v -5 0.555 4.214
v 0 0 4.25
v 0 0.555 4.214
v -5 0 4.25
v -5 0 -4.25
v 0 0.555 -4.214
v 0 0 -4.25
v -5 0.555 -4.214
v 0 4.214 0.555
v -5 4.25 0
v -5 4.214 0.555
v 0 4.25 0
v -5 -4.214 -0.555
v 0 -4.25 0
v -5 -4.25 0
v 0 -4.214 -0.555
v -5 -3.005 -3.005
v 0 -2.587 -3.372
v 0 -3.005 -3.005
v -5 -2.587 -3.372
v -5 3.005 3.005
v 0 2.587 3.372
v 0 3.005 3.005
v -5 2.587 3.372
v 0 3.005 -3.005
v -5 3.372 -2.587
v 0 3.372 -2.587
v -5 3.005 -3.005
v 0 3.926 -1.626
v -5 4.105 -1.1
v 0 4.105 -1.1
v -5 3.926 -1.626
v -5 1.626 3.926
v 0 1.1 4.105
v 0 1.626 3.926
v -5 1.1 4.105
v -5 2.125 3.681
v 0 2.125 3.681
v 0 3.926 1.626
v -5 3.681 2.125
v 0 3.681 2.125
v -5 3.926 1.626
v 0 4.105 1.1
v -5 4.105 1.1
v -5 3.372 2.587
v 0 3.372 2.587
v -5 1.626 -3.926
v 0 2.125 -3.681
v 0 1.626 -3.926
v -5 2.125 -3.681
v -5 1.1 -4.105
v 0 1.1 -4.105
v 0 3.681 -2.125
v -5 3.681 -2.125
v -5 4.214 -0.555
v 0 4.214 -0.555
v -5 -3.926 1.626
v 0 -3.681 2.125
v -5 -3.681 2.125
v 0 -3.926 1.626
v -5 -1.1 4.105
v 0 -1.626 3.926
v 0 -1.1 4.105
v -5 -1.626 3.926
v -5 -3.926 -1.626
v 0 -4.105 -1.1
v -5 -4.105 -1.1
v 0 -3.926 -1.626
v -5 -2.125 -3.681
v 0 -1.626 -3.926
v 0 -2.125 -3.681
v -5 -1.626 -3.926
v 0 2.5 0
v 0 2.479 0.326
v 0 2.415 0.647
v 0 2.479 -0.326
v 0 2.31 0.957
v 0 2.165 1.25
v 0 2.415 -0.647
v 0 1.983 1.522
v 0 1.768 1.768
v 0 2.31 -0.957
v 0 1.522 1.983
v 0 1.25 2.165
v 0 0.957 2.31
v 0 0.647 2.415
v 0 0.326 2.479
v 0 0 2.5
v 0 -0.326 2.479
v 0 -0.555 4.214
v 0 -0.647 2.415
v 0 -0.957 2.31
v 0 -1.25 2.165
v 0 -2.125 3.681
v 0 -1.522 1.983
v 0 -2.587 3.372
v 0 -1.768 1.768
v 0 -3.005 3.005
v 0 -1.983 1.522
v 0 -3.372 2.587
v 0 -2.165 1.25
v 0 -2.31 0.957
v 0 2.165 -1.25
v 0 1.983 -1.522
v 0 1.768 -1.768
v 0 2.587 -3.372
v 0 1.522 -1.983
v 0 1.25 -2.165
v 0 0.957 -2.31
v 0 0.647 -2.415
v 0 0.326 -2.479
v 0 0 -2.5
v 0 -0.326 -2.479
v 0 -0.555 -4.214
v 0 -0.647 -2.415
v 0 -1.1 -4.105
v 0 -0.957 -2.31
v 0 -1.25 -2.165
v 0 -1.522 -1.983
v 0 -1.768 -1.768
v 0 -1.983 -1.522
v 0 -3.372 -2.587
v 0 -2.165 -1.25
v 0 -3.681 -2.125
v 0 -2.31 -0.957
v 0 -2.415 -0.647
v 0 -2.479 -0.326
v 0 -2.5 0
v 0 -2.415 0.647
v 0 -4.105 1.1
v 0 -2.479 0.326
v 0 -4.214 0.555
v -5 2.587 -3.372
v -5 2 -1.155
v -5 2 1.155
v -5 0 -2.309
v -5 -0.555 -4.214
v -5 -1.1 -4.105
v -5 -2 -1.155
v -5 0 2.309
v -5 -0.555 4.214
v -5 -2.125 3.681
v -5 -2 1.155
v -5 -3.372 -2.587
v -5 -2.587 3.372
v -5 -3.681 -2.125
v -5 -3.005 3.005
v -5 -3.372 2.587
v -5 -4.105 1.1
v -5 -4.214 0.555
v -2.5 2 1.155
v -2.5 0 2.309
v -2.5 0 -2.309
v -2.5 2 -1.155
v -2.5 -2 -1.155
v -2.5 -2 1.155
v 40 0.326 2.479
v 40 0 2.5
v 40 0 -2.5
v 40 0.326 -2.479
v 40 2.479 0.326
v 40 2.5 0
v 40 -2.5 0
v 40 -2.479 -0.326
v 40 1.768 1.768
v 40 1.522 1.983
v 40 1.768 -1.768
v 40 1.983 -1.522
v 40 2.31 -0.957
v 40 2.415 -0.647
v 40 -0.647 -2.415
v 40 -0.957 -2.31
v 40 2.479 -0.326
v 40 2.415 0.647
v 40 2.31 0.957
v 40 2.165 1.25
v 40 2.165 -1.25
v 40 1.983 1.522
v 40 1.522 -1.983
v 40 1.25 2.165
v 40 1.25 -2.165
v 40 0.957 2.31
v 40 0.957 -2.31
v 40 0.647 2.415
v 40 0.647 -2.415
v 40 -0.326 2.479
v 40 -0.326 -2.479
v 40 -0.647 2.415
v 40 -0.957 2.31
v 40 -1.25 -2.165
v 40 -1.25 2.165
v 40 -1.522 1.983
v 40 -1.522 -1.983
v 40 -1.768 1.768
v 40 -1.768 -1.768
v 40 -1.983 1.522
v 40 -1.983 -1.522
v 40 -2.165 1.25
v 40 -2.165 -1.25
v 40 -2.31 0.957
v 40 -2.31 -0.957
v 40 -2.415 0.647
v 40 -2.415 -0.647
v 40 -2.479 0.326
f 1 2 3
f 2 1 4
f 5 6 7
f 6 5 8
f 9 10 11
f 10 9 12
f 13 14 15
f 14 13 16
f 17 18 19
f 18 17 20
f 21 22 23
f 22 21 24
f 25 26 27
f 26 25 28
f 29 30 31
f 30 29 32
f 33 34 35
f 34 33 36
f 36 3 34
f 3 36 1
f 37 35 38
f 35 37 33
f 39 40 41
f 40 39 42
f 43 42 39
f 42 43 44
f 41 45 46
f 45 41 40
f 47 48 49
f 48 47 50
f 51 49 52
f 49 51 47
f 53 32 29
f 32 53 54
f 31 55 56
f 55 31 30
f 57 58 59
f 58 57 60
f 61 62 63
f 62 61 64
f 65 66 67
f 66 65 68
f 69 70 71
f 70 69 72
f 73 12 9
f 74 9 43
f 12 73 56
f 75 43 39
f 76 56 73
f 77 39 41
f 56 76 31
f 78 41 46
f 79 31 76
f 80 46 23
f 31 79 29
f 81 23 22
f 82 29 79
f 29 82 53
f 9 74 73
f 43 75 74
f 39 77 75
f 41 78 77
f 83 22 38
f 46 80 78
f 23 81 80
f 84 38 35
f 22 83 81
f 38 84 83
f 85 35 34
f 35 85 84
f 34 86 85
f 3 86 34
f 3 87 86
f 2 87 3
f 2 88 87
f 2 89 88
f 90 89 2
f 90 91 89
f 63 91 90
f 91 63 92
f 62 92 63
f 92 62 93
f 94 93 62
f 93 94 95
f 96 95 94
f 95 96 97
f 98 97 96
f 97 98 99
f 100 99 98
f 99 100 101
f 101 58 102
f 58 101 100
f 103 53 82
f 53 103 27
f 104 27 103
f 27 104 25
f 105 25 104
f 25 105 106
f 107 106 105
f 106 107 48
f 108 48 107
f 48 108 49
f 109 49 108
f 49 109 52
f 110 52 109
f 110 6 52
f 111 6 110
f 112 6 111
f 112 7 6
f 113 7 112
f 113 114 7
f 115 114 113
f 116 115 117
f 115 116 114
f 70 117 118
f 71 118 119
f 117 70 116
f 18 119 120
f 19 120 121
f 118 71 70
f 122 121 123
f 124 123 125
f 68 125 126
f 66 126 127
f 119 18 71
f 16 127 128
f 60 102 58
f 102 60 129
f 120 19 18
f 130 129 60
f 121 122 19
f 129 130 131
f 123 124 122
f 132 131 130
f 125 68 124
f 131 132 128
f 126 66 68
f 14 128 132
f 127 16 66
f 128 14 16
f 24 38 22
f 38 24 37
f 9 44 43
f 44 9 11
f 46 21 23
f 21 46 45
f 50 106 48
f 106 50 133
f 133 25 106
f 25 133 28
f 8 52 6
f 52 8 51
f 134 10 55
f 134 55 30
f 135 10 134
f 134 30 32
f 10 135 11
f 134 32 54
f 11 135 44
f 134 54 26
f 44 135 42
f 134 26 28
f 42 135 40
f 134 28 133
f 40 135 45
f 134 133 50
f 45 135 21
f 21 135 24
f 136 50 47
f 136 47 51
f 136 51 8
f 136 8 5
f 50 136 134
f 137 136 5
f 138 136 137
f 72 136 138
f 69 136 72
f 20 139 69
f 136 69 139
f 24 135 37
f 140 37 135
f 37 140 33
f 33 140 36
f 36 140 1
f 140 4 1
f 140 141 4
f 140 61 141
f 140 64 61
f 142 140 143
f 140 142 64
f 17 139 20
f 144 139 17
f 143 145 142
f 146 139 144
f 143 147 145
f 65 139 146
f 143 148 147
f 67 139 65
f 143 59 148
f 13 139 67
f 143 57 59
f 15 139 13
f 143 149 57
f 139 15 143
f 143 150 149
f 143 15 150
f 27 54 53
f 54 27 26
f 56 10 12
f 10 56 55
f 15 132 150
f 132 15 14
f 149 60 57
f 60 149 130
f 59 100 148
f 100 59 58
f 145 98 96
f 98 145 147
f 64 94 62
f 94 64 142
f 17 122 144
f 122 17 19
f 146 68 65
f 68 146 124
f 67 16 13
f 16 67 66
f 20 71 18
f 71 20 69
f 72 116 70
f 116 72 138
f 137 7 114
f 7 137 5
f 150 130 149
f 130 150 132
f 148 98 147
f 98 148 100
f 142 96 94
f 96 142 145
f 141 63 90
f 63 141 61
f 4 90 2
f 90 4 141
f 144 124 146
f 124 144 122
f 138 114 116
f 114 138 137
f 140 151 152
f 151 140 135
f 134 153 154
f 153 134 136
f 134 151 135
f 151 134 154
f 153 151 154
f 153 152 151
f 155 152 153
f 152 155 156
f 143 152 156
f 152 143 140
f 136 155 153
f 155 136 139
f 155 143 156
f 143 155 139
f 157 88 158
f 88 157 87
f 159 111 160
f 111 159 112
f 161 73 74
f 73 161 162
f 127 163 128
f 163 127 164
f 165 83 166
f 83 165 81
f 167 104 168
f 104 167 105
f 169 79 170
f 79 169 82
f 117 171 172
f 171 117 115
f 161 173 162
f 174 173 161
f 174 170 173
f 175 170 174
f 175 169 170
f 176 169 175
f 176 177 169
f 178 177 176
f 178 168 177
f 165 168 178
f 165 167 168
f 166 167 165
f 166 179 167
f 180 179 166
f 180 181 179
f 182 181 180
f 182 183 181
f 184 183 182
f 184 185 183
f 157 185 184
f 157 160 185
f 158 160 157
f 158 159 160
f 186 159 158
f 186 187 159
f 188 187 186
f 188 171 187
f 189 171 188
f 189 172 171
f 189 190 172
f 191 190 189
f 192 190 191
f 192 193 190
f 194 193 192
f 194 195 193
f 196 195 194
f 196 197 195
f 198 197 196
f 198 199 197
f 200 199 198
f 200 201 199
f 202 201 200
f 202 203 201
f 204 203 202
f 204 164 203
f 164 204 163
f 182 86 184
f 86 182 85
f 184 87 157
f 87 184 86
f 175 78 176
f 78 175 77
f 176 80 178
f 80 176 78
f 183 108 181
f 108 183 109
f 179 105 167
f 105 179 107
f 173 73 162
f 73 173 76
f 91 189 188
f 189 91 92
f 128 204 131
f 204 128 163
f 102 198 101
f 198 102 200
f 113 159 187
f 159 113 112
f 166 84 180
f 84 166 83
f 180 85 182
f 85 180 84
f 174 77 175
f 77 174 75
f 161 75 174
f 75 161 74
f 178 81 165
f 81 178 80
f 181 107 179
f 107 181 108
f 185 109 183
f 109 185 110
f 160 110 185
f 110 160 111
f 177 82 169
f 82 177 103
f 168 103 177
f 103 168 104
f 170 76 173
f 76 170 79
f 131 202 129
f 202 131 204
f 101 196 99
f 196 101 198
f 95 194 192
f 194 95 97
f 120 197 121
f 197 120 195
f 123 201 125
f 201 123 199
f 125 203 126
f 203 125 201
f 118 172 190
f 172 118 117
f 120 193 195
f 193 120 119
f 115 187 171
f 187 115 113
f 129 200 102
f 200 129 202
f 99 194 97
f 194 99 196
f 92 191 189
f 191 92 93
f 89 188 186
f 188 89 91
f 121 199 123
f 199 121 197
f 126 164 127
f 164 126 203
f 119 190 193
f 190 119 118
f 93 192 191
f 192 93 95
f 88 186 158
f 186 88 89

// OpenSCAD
// file: ../../lib/nutsnbolts/data-access.scad
// Norm Nuts and Bolts - a OpenSCAD library
// Copyright (C) 2012  Johannes Kneer

// This program is free software: you can redistribute it and/or modify
// it under the terms of the GNU General Public License as published by
// the Free Software Foundation, either version 3 of the License, or
// (at your option) any later version.

// This program is distributed in the hope that it will be useful,
// but WITHOUT ANY WARRANTY; without even the implied warranty of
// MERCHANTABILITY or FITNESS FOR A PARTICULAR PURPOSE.  See the
// GNU General Public License for more details.

// You should have received a copy of the GNU General Public License
// along with this program.  If not, see <http://www.gnu.org/licenses/>.


// DATABASE ACCESS FUNCTIONS AND CONSTANTS



// == CONSTANTS ==

// screw table access keys
_NB_S_DESC            = 0;
_NB_S_FAMKEY			    = 1;
_NB_S_LENGTH          = 2;
_NB_S_NOTHREAD_LENGTH = 3;

_NB_F_DESC			      = 0;
_NB_F_OUTER_DIA       = 1;
_NB_F_INNER_DIA       = 2;
_NB_F_LEAD            = 3;
_NB_F_KEY             = 4;
_NB_F_KEY_DEPTH       = 5;
_NB_F_HEAD_HEIGHT     = 6;
_NB_F_HEAD_DIA        = 7;
_NB_F_NUT_KEY         = 8;
_NB_F_NUT_HEIGHT      = 9;
_NB_F_PITCH_FINE      = 10;
_NB_F_PITCH_MEDIUM    = 11;
_NB_F_PITCH_COARSE    = 12;


// == FUNCTIONS ==

// _get_screw("descriptor")   with descriptor = M8x25
//   find the line for a general object in the data matrix

function _get_screw(n) = data_screw[search([n], data_screw)[0]];
function _get_screw_fam(n) = data_screw_fam[search([_get_screw(n)[_NB_S_FAMKEY]], data_screw_fam)[0]];

function _get_fam(n) = data_screw_fam[search([n], data_screw_fam)[0]];


// _get_XXXXX("descriptor") functions
// find a single property in the database

function _get_desc(n)        = _get_screw(n)[_NB_S_DESC];
function _get_famkey(n)         = _get_screw(n)[_NB_S_FAMKEY];
function _get_length(n)      = _get_screw(n)[_NB_S_LENGTH];
function _get_nt_length(n)   = _get_screw(n)[_NB_S_NOTHREAD_LENGTH];

function _get_outer_dia(n)   = _get_screw_fam(n)[_NB_F_OUTER_DIA];
function _get_inner_dia(n)   = _get_screw_fam(n)[_NB_F_INNER_DIA];
function _get_lead(n)        = _get_screw_fam(n)[_NB_F_LEAD];
function _get_head_height(n) = _get_screw_fam(n)[_NB_F_HEAD_HEIGHT];
function _get_head_dia(n)    = _get_screw_fam(n)[_NB_F_HEAD_DIA];
function _get_nut_key(n)     = _get_screw_fam(n)[_NB_F_NUT_KEY];
function _get_nut_height(n)  = _get_screw_fam(n)[_NB_F_NUT_HEIGHT];
function _get_fine_pitch(n)  = _get_screw_fam(n)[_NB_F_PITCH_FINE];
function _get_medium_pitch(n)  = _get_screw_fam(n)[_NB_F_PITCH_MEDIUM];
function _get_coarse_pitch(n)  = _get_screw_fam(n)[_NB_F_PITCH_COARSE];
// main file
/**********************************************************************************************************************
 **
 ** parts/vitamins/screw_M5x40.scad
 **
 ** This file renders a screw of the dimensions specified by the file name.
 **
 **********************************************************************************************************************/

include <../../lib/nutsnbolts/cyl_head_bolt.scad>;

$fn = 48;
rotate([0, -90, 0])
	screw("M5x40"); 
